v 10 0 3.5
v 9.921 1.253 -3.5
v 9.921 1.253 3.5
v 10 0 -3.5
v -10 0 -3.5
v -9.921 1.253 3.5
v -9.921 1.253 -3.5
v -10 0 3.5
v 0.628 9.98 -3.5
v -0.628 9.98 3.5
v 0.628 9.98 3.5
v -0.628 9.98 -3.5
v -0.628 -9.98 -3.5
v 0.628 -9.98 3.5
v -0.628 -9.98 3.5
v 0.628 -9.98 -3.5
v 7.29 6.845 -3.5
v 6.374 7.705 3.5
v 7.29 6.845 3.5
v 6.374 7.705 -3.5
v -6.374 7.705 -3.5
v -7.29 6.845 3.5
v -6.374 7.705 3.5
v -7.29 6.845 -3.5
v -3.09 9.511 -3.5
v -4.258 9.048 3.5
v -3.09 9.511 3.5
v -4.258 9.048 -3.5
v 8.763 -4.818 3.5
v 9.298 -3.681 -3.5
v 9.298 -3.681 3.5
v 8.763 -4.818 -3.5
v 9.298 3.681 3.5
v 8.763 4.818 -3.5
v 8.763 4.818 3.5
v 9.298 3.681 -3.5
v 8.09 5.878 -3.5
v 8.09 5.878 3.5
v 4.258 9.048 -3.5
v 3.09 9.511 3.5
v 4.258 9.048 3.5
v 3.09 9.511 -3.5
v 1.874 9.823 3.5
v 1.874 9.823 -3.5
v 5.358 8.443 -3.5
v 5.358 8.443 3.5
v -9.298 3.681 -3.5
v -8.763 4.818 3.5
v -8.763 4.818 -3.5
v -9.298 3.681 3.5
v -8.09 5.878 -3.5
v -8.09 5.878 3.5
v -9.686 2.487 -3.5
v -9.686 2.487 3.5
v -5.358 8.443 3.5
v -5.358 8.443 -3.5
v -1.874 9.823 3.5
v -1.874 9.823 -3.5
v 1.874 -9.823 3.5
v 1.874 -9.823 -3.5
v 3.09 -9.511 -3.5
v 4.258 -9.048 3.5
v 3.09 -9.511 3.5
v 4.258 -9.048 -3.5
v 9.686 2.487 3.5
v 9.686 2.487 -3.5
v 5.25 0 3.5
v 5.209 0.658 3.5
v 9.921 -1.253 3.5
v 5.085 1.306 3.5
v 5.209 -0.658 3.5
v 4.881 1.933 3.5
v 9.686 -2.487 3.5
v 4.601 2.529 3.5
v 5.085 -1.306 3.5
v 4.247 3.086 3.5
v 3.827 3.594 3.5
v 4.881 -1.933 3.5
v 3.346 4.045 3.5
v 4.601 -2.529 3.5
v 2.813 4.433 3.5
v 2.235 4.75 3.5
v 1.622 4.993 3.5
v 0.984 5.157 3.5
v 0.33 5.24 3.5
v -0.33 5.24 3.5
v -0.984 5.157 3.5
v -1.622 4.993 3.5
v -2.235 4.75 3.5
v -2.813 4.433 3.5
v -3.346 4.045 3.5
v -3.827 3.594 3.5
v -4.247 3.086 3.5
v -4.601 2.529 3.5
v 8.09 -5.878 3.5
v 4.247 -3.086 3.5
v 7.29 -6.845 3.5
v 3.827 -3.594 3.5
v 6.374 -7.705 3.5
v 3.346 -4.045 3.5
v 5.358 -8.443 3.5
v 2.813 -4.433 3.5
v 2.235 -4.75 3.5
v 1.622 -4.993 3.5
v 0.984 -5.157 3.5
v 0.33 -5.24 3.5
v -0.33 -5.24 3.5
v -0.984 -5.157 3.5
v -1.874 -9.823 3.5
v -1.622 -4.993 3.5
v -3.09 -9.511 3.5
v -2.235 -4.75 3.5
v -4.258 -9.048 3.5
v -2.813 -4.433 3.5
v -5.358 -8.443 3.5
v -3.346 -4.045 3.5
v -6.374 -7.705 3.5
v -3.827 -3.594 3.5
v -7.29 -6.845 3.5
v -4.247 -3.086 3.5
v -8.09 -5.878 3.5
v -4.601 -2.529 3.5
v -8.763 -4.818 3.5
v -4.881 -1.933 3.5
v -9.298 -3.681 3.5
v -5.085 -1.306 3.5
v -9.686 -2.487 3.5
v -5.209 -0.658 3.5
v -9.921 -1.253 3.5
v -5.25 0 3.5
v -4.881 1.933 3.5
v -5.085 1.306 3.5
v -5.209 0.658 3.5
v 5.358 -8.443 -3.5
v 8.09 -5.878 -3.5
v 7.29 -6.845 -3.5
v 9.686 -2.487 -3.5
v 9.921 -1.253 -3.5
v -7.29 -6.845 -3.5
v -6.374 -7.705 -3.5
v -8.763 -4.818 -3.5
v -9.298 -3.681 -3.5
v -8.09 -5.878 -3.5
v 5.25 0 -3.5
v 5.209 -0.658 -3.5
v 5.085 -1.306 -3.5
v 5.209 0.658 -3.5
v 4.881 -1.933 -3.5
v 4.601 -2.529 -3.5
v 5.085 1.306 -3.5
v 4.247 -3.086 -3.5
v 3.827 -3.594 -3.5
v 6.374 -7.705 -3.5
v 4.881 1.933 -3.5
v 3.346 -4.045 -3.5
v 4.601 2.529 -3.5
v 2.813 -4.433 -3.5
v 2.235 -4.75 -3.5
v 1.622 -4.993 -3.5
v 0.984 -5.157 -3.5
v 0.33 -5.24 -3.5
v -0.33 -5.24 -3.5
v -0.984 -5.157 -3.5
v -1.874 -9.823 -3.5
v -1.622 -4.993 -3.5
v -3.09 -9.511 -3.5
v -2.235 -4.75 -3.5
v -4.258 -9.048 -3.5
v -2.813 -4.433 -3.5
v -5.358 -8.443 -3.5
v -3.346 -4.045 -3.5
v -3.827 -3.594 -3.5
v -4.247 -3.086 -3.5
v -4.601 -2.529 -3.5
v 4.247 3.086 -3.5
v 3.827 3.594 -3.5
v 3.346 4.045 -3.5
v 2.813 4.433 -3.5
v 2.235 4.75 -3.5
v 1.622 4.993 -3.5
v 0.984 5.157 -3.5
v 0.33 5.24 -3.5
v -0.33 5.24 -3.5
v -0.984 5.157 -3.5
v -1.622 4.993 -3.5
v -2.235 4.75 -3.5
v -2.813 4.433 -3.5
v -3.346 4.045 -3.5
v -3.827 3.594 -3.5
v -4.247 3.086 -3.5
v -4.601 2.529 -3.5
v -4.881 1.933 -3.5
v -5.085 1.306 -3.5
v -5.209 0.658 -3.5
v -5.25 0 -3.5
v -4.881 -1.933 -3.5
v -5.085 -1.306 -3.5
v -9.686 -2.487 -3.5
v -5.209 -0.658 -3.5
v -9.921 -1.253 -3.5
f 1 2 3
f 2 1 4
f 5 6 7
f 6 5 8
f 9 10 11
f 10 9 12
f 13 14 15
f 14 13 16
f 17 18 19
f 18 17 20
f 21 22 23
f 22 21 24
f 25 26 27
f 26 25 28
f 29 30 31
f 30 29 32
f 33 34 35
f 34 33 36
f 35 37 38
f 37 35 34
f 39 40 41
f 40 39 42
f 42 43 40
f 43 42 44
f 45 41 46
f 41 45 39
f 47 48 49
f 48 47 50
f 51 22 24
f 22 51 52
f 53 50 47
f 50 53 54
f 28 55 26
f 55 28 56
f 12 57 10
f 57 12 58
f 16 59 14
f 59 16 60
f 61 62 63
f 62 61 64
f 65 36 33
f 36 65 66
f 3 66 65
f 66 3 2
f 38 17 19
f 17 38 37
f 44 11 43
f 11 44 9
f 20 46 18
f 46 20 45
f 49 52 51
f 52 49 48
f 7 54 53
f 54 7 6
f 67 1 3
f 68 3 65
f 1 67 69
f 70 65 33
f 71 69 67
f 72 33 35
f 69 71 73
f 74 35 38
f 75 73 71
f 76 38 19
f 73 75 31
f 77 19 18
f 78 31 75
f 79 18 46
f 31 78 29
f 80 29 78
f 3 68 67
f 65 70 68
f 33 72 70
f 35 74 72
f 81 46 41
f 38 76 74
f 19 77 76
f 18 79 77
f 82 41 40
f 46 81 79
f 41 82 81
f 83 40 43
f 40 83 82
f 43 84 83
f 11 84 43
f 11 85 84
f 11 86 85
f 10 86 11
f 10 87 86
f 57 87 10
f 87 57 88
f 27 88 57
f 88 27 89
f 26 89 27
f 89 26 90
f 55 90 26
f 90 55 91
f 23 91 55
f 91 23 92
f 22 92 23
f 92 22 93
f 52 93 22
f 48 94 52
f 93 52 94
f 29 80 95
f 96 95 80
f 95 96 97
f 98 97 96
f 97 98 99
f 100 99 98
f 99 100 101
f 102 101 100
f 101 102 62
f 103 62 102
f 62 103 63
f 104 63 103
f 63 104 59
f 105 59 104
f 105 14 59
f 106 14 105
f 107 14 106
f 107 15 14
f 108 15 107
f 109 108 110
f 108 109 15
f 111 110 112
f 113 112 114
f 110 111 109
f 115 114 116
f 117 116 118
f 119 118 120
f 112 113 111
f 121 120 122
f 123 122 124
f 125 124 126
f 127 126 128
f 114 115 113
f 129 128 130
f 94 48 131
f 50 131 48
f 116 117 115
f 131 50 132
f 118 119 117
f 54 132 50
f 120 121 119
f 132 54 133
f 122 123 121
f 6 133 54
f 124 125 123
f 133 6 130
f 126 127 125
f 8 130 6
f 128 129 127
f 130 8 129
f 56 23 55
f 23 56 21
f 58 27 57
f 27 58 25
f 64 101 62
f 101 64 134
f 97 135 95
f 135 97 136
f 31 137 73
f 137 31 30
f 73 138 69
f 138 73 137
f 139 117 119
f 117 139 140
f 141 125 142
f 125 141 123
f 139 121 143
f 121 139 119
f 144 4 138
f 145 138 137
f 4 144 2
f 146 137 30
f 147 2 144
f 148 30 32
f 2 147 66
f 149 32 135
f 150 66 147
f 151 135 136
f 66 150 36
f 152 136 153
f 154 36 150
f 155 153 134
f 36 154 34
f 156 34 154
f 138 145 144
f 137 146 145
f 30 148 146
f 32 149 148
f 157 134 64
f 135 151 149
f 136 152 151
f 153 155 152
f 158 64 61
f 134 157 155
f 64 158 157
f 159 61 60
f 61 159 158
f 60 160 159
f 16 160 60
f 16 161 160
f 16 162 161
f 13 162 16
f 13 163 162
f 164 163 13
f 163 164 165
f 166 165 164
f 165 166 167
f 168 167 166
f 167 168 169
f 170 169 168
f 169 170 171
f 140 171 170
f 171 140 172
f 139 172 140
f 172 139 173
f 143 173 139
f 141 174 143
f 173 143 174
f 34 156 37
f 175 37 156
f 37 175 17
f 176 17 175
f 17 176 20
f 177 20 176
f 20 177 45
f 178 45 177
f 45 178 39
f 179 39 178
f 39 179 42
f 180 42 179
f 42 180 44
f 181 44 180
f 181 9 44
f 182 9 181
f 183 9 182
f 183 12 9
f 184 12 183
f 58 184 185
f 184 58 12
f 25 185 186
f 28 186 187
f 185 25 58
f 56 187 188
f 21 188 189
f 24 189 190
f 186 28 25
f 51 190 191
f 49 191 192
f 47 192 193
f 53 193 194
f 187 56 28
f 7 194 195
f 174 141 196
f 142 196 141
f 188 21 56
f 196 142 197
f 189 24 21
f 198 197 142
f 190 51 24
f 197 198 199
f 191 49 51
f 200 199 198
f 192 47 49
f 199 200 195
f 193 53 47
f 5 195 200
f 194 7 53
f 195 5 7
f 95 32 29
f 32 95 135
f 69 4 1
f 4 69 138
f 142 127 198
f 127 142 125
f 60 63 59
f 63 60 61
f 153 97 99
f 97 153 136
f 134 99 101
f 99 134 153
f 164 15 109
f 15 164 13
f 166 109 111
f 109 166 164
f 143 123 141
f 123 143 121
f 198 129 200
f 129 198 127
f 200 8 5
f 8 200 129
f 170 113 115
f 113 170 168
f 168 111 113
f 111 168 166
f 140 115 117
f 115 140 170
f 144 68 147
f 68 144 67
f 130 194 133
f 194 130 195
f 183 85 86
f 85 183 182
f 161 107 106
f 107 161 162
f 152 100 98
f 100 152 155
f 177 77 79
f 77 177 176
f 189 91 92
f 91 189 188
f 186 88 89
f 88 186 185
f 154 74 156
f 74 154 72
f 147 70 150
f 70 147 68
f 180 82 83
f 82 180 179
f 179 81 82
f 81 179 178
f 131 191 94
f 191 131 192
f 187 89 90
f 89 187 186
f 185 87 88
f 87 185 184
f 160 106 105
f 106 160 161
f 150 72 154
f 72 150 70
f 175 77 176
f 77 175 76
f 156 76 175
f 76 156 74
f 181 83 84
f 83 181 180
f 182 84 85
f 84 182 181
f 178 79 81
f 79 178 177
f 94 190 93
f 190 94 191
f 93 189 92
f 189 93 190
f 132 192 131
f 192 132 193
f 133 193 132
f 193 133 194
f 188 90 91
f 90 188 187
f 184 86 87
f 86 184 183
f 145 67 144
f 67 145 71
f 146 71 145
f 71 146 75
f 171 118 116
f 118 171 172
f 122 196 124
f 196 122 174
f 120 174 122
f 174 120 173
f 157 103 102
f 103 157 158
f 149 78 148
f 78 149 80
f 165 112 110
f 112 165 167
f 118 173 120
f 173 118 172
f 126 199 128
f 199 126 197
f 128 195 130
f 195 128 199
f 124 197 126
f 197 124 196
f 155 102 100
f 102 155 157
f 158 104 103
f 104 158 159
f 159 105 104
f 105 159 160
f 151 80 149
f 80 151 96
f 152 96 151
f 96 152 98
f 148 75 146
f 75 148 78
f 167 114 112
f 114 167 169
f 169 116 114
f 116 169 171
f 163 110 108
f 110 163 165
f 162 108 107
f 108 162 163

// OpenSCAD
$fn = 50;


difference() {
	union() {
		translate(v = [0, 0, -3.5000000000]) {
			cylinder(h = 7, r = 10.0000000000);
		}
	}
	union() {
		translate(v = [0, 0, -100.0000000000]) {
			cylinder(h = 200, r = 5.2500000000);
		}
	}
}
